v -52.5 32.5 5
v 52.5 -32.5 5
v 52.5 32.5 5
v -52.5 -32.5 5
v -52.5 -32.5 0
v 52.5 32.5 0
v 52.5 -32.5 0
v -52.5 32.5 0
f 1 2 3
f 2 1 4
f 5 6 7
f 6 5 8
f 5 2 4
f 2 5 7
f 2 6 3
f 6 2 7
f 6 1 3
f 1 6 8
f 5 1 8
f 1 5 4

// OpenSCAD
// Define dimensions for the rectangular plate
plate_length = 105;  // Adjusted length of the plate to increase surface area
plate_width = 65;    // Adjusted width of the plate to increase surface area
plate_thickness = 5; // Thickness of the plate remains uniform

// Create the rectangular plate with sharp edges
module rectangular_plate() {
    cube([plate_length, plate_width, plate_thickness], center = true);
}

// Render the model
// Ensure the plate is flat and parallel to the ground
translate([0, 0, plate_thickness / 2]) {
    rectangular_plate();
}
